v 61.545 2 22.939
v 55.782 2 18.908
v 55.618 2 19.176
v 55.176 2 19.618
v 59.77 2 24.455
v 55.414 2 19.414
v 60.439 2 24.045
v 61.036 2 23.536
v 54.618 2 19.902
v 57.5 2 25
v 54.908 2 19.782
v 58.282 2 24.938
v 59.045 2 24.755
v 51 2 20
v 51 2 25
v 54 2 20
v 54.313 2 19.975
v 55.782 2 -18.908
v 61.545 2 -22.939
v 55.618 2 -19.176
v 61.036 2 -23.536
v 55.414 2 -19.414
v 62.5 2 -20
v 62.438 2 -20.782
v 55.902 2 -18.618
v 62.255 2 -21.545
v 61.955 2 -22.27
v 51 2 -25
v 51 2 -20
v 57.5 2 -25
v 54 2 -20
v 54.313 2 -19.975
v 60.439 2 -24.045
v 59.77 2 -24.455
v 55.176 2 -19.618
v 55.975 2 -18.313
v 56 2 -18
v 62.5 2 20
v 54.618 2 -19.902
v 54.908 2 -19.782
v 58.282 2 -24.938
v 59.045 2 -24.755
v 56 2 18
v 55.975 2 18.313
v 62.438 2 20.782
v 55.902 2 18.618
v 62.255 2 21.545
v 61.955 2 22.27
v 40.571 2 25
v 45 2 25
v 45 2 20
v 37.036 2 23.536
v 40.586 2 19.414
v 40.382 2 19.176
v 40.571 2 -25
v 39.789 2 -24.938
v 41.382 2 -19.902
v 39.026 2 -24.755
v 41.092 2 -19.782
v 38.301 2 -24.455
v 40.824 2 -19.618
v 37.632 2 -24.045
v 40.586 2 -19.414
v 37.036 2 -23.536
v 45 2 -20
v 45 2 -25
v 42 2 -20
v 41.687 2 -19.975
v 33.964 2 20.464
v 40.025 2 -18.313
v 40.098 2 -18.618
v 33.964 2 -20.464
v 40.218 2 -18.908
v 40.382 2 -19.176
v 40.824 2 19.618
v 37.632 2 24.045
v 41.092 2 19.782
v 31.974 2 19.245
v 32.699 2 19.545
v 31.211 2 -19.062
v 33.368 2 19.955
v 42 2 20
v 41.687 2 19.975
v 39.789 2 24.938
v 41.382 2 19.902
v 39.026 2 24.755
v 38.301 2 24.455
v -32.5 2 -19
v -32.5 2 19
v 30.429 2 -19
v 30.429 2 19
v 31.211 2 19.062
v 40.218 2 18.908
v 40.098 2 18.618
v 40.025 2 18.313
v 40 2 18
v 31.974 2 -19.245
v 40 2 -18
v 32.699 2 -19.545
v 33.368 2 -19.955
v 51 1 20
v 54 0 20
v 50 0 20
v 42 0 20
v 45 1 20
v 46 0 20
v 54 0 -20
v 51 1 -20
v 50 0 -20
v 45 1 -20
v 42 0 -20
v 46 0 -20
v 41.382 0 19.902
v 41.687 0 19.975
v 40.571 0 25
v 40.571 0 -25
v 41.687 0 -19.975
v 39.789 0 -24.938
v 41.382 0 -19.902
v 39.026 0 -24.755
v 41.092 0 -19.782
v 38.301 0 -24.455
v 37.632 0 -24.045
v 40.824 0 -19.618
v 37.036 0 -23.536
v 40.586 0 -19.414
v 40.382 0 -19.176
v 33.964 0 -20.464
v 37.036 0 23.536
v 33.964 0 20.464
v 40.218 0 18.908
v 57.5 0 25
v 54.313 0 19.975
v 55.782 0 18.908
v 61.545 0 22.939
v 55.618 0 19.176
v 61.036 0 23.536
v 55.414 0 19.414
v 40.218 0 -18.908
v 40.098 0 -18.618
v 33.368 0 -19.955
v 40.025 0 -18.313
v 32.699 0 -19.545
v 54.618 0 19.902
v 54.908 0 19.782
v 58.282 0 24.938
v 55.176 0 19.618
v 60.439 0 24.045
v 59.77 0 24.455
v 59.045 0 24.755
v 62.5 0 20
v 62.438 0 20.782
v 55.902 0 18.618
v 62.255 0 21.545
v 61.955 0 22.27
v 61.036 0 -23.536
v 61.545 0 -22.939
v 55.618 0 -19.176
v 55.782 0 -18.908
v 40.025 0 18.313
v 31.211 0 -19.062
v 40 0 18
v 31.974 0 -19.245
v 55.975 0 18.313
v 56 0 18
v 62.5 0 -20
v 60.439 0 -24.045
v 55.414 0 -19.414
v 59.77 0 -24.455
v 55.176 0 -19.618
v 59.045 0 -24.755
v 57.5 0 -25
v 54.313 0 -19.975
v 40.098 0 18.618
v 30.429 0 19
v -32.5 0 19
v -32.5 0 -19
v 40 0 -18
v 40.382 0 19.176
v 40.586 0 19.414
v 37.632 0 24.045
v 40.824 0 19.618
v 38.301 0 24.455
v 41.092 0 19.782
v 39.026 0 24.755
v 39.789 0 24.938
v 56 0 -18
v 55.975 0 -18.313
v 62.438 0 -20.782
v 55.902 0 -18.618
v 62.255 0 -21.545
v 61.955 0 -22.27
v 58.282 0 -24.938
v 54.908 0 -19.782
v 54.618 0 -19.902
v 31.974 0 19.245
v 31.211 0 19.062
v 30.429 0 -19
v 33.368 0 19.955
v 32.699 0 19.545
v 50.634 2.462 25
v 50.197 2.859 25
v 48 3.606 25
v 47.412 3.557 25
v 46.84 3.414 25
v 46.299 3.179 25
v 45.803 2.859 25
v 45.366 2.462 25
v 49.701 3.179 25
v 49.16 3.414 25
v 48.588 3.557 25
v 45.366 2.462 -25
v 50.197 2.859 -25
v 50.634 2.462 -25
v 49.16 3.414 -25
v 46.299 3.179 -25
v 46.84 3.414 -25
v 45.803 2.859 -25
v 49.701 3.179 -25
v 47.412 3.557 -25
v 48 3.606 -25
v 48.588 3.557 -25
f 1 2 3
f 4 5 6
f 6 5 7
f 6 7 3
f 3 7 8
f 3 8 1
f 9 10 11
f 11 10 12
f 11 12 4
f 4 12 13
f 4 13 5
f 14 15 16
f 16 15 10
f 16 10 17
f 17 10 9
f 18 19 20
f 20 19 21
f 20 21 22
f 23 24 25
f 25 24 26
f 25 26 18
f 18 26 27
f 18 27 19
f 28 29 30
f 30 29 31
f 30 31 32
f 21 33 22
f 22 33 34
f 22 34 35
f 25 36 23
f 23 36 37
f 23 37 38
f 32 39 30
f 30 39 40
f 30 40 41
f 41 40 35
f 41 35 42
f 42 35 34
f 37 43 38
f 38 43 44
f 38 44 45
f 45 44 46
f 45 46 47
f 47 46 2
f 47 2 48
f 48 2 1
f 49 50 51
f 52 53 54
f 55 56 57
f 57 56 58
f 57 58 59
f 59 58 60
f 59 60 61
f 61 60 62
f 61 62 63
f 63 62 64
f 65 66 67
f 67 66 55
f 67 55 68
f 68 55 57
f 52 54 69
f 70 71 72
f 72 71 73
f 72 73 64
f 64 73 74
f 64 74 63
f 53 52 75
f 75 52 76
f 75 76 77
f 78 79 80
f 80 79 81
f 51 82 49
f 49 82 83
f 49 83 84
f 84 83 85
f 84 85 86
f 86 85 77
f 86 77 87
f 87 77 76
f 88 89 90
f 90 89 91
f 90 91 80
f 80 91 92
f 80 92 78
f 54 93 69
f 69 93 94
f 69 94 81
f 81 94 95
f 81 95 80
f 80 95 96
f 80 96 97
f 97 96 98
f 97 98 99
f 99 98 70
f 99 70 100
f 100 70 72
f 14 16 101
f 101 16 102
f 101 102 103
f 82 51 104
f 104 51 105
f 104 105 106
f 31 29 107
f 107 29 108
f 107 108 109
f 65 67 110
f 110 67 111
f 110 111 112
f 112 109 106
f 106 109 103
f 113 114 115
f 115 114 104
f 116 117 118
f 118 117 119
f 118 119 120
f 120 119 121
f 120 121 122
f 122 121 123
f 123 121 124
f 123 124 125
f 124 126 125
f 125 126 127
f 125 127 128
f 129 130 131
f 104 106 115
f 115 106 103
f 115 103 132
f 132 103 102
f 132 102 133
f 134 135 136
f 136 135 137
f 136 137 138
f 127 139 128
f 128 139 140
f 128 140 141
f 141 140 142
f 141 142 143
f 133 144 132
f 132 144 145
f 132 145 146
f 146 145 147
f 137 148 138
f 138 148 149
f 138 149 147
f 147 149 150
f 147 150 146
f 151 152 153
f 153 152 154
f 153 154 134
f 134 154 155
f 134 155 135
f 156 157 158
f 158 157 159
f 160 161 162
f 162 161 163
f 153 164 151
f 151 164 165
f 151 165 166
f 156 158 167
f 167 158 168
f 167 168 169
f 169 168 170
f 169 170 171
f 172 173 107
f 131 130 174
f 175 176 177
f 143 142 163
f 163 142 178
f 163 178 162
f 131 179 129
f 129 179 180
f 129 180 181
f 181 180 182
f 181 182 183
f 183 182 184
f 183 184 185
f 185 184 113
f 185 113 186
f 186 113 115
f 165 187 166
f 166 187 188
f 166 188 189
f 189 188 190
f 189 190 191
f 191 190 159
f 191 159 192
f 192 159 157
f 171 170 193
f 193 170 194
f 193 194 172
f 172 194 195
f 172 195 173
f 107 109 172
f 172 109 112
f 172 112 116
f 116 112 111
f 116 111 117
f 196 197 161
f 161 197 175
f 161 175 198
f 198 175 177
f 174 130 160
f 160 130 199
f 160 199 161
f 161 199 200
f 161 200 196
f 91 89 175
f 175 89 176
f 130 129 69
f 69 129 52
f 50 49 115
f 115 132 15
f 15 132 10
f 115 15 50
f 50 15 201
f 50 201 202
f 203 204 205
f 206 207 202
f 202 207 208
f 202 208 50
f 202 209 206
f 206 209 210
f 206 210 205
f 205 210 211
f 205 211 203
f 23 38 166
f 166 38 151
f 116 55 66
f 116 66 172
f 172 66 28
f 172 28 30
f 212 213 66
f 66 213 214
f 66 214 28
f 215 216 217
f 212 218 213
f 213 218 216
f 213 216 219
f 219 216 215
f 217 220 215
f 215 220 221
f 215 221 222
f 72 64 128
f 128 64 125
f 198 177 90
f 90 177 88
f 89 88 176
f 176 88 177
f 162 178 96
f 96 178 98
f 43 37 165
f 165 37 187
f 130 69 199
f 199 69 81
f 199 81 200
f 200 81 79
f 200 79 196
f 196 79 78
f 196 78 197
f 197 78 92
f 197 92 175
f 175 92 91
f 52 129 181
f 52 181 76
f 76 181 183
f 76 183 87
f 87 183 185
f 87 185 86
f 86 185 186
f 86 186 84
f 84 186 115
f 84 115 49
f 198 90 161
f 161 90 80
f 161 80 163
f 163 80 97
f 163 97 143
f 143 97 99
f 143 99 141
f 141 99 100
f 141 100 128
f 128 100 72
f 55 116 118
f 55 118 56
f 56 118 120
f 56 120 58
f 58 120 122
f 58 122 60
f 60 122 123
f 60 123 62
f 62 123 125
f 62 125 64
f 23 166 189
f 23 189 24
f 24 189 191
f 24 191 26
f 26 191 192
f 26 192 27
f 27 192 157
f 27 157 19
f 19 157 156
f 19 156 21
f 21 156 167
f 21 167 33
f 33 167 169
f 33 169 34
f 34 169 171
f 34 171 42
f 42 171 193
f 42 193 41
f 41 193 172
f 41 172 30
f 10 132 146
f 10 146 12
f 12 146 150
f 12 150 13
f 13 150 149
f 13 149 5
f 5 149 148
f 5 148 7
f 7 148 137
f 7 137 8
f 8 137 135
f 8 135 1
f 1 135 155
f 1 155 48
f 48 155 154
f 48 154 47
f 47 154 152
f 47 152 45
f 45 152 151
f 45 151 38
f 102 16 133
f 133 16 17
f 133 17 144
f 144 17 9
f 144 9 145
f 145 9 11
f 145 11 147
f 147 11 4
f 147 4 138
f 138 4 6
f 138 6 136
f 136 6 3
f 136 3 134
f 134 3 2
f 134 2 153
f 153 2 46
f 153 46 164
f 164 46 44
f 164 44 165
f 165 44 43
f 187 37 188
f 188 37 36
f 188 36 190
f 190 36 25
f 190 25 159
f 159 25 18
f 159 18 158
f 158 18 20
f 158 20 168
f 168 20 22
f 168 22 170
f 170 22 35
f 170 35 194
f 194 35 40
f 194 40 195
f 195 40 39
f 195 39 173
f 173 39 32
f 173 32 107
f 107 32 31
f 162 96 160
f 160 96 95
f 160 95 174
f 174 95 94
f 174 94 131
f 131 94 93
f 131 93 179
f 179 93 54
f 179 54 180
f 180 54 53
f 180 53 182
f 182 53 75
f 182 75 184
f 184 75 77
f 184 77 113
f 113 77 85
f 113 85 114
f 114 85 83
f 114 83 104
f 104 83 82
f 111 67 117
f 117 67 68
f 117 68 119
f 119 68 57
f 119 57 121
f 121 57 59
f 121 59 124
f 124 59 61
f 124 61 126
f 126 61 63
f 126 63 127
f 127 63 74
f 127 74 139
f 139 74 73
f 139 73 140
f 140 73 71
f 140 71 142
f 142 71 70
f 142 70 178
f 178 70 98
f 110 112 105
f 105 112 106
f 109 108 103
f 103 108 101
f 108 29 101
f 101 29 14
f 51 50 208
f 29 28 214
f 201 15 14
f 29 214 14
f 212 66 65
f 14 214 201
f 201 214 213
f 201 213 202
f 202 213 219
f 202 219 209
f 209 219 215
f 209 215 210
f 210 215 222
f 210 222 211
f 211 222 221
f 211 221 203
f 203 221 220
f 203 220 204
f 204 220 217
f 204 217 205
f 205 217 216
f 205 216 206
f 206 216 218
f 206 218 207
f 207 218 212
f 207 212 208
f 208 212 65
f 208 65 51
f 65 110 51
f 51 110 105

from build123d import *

# Parameters (mm, degrees)
SKETCH1_W           = 16
SKETCH1_H           = 40
BOSS_EXTRUDE1_DEPTH = 2
FILLET1_R           = 5
FILLET2_R           = 2
BOSS_EXTRUDE2_DEPTH = 25


with BuildPart() as part:
    # Sketch1 → Boss-Extrude1 (new body)
    with BuildSketch(Plane(origin=(0, 0, 0), x_dir=(1, 0, 0), z_dir=(0, 1, 0))):
        Polygon((32.5, -19), (38.5, -25), (62.5, -25), (62.5, 25), (38.5, 25), (32.5, 19), (-32.5, 19), (-32.5, -19), align=None)
        with Locations((48, 0)):
            Rectangle(SKETCH1_W, SKETCH1_H, mode=Mode.SUBTRACT)
    extrude(amount=BOSS_EXTRUDE1_DEPTH)

    # Fillet1
    fillet1_edges = [part.edges().sort_by_distance(p)[0] for p in [
        (32.5, 1, -19),
        (38.5, 1, -25),
        (62.5, 1, -25),
        (62.5, 1, 25),
        (38.5, 1, 25),
        (32.5, 1, 19),
    ]]
    fillet(fillet1_edges, radius=FILLET1_R)

    # Fillet2
    fillet2_edges = [part.edges().sort_by_distance(p)[0] for p in [
        (40, 1, -20),
        (40, 1, 20),
        (56, 1, 20),
        (56, 1, -20),
    ]]
    fillet(fillet2_edges, radius=FILLET2_R)

    # Sketch2 → Boss-Extrude2 (add, symmetric)
    with BuildSketch(Plane.XY):
        with BuildLine():
            Line((46, 0), (50, 0))
            Line((50, 0), (51, 1))
            Line((51, 1), (51, 2))
            ThreePointArc((51, 2), (48, 3.605551275), (45, 2))
            Line((45, 2), (45, 1))
            Line((45, 1), (46, 0))
        make_face()
    extrude(amount=BOSS_EXTRUDE2_DEPTH, both=True)


solid = part.part
